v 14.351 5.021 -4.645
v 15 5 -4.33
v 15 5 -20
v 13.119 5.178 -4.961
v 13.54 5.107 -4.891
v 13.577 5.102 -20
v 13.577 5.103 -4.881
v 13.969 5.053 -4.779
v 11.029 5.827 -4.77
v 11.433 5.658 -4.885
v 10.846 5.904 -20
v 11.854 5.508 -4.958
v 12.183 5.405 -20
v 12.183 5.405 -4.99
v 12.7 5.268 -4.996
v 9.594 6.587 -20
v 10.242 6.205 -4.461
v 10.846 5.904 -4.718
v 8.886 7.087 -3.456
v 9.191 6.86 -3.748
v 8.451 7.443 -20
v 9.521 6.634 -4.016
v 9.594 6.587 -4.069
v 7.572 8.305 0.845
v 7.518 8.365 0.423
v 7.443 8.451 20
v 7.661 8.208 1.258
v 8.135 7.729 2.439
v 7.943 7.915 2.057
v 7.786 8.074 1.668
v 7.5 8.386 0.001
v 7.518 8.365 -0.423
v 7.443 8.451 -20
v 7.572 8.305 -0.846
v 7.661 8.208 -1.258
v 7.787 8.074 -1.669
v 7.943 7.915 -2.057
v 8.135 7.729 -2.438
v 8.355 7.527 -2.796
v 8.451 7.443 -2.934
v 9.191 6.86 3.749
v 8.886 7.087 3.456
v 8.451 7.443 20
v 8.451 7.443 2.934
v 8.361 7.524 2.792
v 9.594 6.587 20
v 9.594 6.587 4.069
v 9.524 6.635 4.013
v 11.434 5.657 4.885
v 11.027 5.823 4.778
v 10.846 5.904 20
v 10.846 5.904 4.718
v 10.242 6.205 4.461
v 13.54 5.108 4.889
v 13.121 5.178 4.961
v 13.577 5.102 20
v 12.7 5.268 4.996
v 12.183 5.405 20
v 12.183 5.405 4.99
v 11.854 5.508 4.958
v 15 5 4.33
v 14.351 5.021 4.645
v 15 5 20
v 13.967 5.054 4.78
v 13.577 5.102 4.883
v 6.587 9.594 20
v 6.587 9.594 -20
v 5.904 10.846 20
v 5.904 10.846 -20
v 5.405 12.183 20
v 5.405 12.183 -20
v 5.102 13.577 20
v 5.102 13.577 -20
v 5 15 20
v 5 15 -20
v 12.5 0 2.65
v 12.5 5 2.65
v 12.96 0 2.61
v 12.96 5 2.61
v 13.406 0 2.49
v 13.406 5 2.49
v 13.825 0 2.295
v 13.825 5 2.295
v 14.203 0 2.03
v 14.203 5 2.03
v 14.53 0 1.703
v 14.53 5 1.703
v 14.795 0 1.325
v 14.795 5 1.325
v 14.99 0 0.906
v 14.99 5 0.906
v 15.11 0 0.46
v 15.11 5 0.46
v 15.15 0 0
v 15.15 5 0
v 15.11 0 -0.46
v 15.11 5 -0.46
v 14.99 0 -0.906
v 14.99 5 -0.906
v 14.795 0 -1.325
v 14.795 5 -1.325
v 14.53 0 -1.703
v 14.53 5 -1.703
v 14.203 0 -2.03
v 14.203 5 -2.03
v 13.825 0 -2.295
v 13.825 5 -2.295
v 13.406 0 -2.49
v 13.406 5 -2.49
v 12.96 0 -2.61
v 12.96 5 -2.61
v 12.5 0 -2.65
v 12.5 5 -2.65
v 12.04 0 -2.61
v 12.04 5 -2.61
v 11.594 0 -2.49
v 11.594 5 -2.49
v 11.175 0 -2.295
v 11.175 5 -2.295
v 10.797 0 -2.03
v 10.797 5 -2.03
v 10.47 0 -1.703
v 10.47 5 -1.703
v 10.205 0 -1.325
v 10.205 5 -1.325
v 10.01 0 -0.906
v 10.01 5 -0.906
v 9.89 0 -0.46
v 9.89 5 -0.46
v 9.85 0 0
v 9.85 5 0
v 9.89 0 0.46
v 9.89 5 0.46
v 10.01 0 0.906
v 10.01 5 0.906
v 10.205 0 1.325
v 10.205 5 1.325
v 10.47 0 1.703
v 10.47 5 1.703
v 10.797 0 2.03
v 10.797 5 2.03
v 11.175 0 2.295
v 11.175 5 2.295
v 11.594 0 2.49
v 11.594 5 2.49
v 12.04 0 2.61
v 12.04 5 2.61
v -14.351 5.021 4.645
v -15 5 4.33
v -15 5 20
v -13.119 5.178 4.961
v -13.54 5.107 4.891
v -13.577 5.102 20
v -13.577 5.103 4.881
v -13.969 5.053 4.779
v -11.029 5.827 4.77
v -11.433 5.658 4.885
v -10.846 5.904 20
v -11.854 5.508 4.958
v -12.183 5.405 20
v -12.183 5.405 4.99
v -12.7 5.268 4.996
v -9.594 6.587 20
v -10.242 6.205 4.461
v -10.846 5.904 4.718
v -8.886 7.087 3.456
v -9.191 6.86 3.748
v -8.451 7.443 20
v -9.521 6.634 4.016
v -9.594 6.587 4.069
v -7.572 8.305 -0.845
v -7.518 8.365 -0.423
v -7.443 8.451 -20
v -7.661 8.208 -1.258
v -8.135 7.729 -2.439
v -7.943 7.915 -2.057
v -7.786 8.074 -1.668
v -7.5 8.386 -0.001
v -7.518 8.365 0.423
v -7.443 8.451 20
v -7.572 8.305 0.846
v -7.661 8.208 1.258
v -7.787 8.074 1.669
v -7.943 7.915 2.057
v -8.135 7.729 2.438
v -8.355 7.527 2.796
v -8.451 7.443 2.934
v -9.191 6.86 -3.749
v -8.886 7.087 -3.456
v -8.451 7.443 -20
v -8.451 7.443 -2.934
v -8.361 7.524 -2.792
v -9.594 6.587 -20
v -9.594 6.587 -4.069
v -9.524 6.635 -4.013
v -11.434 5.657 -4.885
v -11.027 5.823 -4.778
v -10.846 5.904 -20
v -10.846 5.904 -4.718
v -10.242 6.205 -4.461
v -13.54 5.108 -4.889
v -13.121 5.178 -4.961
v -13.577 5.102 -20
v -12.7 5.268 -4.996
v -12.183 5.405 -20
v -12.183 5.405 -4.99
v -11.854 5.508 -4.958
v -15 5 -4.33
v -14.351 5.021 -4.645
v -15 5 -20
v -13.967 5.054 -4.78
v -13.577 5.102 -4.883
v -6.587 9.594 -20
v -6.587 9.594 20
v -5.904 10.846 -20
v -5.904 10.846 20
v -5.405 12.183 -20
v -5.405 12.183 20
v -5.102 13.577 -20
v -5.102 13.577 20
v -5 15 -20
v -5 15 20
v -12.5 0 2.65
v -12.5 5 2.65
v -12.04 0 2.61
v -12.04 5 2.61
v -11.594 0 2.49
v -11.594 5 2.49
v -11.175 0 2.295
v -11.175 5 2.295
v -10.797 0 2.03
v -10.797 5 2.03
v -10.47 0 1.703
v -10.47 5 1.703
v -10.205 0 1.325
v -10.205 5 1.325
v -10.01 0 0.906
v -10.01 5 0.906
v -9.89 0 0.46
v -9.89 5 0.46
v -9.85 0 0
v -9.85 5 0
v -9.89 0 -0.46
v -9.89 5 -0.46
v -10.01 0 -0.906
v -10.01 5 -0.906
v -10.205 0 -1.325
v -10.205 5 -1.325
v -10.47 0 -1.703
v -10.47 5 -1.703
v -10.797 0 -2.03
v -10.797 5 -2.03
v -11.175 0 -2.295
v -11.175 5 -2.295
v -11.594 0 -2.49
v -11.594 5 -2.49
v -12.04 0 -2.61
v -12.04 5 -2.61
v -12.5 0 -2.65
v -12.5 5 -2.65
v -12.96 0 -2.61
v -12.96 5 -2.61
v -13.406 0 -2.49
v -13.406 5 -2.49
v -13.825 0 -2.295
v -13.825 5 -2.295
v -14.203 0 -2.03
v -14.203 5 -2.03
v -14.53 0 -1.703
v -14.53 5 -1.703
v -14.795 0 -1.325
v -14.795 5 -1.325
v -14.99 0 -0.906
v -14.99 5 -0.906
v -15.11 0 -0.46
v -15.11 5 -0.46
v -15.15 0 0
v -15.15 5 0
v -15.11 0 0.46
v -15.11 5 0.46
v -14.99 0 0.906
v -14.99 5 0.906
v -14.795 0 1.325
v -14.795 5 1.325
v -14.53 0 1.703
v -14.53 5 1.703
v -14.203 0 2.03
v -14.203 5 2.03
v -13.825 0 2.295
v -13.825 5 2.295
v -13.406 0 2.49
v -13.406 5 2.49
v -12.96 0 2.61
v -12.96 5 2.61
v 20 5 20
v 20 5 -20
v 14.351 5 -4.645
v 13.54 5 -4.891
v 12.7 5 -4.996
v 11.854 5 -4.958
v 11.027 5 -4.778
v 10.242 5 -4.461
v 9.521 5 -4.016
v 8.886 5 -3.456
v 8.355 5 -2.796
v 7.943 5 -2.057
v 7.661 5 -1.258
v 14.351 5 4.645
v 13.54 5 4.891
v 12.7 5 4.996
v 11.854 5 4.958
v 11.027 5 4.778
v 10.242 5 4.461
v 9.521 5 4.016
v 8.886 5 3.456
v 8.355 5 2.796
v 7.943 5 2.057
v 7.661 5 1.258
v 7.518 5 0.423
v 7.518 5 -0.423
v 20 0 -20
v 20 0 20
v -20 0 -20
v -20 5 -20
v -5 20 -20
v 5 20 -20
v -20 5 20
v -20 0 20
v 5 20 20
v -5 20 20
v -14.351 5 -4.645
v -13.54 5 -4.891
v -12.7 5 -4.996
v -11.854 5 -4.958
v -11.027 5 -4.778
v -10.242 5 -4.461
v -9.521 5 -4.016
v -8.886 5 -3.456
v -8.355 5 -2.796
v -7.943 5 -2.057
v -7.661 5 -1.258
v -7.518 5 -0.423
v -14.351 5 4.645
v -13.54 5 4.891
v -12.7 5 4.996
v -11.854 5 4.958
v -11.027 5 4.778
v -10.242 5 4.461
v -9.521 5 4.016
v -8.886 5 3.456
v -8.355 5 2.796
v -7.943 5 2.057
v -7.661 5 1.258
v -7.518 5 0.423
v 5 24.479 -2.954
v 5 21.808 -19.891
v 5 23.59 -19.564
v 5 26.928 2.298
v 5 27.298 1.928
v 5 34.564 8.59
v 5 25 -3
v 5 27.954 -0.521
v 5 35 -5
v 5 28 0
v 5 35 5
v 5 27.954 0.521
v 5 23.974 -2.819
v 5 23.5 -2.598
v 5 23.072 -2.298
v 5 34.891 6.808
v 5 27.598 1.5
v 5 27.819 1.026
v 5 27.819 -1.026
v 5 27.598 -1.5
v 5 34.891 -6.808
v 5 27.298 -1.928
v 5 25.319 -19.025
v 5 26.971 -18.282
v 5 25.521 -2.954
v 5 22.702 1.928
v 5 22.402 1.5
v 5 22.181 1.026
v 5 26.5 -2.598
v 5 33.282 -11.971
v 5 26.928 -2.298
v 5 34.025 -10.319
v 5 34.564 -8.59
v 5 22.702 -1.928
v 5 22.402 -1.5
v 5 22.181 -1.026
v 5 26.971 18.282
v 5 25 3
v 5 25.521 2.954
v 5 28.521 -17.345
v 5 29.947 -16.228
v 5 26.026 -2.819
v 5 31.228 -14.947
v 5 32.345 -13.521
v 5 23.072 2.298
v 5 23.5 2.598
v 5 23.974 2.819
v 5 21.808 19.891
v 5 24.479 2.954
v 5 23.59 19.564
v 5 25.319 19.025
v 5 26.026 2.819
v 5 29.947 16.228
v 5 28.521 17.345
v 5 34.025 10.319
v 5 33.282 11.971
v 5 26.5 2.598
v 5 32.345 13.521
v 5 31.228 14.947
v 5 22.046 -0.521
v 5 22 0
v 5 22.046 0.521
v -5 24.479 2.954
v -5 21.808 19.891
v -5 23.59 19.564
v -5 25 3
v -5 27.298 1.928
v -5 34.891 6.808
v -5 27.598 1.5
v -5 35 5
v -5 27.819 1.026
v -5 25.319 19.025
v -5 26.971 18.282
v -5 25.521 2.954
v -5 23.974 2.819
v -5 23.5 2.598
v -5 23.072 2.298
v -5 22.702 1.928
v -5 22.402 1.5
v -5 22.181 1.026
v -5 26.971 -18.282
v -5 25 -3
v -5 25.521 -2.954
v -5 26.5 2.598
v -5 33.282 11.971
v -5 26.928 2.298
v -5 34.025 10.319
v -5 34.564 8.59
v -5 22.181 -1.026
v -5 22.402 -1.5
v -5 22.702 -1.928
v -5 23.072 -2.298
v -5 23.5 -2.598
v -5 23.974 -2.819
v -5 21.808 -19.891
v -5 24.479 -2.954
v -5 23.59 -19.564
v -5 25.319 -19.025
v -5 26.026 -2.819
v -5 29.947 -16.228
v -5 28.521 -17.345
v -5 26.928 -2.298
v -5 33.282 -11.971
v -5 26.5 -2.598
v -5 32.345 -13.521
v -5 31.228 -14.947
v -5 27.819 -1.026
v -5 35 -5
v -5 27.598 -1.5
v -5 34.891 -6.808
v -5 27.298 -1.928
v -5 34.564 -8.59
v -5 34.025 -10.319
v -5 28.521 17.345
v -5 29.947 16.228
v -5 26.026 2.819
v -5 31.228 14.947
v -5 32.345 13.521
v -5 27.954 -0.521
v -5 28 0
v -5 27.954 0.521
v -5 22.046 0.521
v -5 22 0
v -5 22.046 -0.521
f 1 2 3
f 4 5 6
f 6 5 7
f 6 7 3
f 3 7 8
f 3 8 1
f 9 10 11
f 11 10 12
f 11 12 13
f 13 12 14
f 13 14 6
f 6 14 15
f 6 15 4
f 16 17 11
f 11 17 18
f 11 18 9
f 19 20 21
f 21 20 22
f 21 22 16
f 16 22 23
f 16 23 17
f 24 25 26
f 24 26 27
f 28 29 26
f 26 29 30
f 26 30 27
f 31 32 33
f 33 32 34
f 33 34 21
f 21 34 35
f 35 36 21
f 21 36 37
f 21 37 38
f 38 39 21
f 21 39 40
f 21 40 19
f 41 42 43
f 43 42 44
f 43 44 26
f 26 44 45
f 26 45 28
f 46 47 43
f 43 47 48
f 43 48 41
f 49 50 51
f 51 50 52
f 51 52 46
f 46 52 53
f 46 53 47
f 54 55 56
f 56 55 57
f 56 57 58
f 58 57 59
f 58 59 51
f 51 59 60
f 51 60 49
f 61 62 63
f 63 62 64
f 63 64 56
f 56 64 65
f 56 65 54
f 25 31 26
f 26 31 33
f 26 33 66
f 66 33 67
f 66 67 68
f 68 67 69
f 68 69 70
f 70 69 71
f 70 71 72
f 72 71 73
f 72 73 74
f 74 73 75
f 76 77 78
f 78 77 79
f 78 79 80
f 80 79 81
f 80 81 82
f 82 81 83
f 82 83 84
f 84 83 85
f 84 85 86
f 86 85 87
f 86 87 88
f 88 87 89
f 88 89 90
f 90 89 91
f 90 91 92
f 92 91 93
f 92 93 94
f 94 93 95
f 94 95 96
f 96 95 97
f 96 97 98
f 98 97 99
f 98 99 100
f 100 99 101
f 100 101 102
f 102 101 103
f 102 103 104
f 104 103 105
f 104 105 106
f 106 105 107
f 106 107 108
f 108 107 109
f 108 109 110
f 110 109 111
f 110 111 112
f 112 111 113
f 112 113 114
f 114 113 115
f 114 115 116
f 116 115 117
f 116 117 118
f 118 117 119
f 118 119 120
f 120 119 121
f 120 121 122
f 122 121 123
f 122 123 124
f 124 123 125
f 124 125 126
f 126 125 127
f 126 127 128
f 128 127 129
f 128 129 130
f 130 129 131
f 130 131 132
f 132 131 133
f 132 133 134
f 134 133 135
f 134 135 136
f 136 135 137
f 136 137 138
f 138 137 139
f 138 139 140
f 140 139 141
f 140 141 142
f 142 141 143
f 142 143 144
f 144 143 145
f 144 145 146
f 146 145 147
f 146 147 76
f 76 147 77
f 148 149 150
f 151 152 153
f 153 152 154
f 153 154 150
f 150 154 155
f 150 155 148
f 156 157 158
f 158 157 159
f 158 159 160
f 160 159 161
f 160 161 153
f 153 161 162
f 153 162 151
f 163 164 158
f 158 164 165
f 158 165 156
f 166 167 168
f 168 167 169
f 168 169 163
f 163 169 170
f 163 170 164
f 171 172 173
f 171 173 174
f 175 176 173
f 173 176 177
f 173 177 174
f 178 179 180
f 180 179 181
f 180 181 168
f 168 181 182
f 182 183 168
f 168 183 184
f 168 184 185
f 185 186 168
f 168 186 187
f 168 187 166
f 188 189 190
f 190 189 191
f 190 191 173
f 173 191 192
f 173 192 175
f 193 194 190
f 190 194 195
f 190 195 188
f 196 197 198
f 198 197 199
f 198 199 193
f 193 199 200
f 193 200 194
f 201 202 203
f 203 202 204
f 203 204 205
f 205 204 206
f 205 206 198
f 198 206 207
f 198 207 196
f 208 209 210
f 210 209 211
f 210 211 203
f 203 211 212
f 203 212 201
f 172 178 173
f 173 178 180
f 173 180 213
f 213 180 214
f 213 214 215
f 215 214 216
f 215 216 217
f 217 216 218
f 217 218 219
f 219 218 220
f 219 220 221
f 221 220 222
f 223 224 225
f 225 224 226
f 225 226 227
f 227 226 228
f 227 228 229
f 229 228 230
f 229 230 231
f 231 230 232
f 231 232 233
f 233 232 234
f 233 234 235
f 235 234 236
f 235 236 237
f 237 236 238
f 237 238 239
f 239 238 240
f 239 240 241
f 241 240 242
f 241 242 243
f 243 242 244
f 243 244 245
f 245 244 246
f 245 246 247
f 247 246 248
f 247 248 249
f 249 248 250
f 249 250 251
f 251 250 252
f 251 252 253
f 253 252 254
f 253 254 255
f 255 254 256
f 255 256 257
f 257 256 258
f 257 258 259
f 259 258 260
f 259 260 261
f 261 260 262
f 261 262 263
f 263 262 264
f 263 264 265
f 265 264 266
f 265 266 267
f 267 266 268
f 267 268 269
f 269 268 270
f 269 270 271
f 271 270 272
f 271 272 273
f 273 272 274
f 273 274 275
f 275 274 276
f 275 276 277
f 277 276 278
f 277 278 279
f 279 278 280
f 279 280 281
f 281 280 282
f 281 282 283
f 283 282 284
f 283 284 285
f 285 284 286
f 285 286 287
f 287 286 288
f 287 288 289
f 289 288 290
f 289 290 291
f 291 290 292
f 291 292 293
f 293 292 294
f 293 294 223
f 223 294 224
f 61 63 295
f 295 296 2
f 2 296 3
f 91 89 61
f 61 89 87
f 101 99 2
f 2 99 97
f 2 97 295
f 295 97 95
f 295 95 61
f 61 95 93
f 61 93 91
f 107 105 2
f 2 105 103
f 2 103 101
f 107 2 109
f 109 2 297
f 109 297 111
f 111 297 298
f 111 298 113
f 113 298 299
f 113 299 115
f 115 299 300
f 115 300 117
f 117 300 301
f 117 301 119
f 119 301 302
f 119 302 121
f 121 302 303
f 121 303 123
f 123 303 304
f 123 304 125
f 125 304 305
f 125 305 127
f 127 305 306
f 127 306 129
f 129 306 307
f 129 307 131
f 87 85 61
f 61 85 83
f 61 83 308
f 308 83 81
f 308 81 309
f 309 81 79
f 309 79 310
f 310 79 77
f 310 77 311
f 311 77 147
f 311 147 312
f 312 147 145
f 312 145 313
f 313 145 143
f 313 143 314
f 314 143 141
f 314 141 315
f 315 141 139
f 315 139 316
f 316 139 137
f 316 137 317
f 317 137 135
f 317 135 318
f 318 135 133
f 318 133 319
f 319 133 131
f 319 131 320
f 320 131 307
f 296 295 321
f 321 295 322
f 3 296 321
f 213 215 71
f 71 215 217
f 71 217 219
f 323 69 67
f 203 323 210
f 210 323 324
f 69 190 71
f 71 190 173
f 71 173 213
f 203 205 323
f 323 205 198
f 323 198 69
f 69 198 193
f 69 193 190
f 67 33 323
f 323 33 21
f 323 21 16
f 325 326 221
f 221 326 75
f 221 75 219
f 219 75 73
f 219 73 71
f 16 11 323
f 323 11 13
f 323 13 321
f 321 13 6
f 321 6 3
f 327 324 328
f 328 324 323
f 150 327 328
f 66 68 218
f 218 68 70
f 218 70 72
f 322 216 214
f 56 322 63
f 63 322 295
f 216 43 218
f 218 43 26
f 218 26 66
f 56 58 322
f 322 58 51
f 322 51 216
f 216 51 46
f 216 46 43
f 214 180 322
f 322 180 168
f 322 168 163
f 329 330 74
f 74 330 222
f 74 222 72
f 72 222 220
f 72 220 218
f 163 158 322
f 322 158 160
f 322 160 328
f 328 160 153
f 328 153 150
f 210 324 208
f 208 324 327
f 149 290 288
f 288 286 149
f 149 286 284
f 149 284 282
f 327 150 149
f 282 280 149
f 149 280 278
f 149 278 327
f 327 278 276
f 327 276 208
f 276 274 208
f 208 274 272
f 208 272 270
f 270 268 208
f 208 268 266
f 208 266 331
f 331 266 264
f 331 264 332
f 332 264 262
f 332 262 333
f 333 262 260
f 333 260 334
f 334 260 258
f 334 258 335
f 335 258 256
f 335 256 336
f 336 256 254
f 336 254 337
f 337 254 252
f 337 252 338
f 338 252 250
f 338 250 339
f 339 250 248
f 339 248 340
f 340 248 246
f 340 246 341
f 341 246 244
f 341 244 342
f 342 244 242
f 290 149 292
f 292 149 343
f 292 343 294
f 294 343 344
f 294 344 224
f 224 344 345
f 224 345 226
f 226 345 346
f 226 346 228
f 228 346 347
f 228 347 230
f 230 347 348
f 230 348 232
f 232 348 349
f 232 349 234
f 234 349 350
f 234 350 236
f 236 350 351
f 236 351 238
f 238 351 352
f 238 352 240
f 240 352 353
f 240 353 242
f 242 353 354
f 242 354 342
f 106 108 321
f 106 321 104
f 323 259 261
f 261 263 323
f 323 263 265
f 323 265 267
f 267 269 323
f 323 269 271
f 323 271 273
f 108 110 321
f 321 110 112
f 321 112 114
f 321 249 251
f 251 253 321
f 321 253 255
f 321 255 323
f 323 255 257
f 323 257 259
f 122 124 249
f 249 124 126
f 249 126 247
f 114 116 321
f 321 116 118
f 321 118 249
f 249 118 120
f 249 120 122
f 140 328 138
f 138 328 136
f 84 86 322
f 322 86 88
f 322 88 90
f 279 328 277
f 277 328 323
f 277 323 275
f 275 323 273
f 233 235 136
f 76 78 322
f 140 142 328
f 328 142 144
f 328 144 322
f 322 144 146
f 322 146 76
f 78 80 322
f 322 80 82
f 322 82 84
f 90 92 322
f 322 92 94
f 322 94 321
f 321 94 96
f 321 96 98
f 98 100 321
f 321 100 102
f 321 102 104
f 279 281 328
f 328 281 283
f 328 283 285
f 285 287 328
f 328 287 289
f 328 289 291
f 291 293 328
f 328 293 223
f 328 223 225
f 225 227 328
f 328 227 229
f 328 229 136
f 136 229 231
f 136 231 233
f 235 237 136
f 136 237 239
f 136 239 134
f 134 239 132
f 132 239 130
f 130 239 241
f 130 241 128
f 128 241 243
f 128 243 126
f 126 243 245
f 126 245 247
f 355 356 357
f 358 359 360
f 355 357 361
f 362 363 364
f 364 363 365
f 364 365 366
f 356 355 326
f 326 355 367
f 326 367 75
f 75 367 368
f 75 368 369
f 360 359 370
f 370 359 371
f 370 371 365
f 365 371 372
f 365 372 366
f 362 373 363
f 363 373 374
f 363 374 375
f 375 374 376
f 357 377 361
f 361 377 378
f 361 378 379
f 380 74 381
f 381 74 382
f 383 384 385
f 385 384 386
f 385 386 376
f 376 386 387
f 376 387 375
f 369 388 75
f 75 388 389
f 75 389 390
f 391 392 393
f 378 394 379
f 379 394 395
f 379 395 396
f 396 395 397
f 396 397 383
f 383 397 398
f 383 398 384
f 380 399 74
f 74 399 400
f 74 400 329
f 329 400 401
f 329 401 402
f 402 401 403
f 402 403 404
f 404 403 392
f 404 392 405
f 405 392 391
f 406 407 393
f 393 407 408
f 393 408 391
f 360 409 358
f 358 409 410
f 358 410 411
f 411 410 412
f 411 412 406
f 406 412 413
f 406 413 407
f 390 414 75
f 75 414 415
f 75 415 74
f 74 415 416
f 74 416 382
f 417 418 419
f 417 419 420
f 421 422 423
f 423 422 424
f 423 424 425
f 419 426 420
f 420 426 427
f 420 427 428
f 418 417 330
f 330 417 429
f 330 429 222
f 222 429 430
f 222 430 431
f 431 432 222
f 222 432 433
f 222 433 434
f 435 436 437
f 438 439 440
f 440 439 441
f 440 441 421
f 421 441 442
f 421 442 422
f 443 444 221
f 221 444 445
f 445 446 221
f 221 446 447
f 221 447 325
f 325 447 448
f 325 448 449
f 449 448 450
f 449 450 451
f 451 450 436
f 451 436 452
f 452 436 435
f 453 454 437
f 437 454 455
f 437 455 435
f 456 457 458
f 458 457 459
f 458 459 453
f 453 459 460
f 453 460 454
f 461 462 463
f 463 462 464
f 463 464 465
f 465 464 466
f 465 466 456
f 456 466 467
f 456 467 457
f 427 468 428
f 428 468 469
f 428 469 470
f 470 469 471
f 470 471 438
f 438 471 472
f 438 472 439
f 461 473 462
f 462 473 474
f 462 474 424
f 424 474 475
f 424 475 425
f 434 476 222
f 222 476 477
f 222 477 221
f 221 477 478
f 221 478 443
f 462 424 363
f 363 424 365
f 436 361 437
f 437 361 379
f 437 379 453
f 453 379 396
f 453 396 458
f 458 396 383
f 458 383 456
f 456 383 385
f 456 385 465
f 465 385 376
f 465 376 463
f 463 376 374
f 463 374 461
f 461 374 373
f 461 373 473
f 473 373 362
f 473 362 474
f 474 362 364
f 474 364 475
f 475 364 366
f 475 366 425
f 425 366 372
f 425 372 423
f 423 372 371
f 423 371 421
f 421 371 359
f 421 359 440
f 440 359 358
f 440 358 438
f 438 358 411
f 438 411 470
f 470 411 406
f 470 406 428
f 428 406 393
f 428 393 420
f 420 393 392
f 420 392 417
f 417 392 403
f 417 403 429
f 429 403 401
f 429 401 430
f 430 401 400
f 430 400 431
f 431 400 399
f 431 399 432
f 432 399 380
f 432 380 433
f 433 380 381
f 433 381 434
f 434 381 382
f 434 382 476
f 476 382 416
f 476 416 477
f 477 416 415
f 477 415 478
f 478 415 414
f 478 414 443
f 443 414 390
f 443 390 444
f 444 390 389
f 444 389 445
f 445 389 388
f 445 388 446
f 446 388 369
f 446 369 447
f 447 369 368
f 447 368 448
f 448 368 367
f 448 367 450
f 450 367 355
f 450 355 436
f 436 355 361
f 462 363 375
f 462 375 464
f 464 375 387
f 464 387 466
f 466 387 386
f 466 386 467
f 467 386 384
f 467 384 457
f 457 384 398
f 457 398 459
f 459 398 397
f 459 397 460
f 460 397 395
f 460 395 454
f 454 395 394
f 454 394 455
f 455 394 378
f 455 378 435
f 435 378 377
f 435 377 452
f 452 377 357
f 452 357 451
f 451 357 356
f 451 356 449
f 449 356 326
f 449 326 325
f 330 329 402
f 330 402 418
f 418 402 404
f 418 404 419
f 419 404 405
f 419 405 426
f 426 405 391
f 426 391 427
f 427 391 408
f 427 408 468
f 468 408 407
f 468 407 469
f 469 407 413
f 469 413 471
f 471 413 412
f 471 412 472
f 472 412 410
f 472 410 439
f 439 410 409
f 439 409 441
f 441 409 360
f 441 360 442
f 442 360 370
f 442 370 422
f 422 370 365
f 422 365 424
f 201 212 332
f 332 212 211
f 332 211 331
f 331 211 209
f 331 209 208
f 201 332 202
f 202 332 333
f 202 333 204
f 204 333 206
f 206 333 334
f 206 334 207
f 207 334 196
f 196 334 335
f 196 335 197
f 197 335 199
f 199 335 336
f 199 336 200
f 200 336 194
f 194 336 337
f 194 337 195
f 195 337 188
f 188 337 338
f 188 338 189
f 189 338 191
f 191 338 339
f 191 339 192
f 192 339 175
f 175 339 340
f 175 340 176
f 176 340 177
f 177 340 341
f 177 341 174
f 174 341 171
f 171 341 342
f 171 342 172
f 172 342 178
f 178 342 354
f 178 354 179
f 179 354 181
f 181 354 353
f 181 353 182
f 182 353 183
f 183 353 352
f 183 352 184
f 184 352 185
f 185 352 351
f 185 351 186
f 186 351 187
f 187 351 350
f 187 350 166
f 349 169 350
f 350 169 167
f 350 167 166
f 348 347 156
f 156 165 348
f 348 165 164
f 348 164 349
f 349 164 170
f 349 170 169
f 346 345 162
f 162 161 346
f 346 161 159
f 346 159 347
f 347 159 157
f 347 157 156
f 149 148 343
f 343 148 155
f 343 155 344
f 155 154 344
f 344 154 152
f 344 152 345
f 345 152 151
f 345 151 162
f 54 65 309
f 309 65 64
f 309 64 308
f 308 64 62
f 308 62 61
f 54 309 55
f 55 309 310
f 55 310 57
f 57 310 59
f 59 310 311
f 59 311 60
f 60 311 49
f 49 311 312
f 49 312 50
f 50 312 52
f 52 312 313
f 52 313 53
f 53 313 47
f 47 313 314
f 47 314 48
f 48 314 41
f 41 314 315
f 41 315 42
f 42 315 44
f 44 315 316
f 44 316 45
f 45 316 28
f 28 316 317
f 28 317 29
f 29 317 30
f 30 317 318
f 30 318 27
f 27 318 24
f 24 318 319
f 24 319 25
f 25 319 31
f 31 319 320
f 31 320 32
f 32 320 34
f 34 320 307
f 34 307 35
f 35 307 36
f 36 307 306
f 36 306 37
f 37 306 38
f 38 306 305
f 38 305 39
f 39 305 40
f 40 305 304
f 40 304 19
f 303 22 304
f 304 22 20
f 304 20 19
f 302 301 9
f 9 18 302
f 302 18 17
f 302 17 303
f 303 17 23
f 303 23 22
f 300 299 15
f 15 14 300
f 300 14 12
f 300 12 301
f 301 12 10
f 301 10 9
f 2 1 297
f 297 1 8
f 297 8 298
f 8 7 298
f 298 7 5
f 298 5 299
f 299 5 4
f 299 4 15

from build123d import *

# Parameters (mm, degrees)
SKETCH1_W                  = 40
SKETCH1_H                  = 40
BOSS_EXTRUDE1_DEPTH        = 5
SKETCH4_W                  = 10
SKETCH4_H                  = 40
BOSS_EXTRUDE3_DEPTH        = 30
SKETCH5_R                  = 3
CUT_EXTRUDE4_DEPTH         = 26
FILLET1_R                  = 15
FILETE1_R                  = 10
ESBO_O1_R                  = 2.65
CORTE_EXTRUS_O1_DEPTH      = 31
CORTE_EXTRUS_O1_DEPTH_BACK = 6
ESBO_O2_R                  = 5
CORTE_EXTRUS_O2_DEPTH      = 31


with BuildPart() as part:
    # Sketch1 → Boss-Extrude1 (new body)
    with BuildSketch(Plane(origin=(0, 0, 0), x_dir=(1, 0, 0), z_dir=(0, 1, 0))):
        Rectangle(SKETCH1_W, SKETCH1_H)
    extrude(amount=BOSS_EXTRUDE1_DEPTH)

    # Sketch4 → Boss-Extrude3 (add)
    with BuildSketch(Plane(origin=(0, 5, 0), x_dir=(1, 0, 0), z_dir=(0, 1, 0))):
        Rectangle(SKETCH4_W, SKETCH4_H)
    extrude(amount=BOSS_EXTRUDE3_DEPTH)

    # Sketch5 → Cut-Extrude4 (cut, through all)
    with BuildSketch(Plane(origin=(5, 0, 0), x_dir=(0, 0, -1), z_dir=(1, 0, 0))):
        with Locations((0, 25)):
            Circle(SKETCH5_R)
    extrude(amount=-CUT_EXTRUDE4_DEPTH, mode=Mode.SUBTRACT)

    # Fillet1
    fillet1_edges = [part.edges().sort_by_distance(p)[0] for p in [
        (0, 35, -20),
        (0, 35, 20),
    ]]
    fillet(fillet1_edges, radius=FILLET1_R)

    # Filete1
    filete1_edges = [part.edges().sort_by_distance(p)[0] for p in [
        (5, 5, 0),
        (-5, 5, 0),
    ]]
    fillet(filete1_edges, radius=FILETE1_R)

    # Esboço1 → Corte-extrusão1 (cut, two sides)
    with BuildSketch(Plane(origin=(0, 5, 0), x_dir=(1, 0, 0), z_dir=(0, 1, 0))) as corte_extrus_o1_sk:
        with Locations((-12.5, 0)):
            Circle(ESBO_O1_R)
        with Locations((12.5, 0)):
            Circle(ESBO_O1_R)
    extrude(amount=CORTE_EXTRUS_O1_DEPTH, mode=Mode.SUBTRACT)
    extrude(corte_extrus_o1_sk.sketch, amount=-CORTE_EXTRUS_O1_DEPTH_BACK, mode=Mode.SUBTRACT)

    # Esboço2 → Corte-extrusão2 (cut, through all)
    with BuildSketch(Plane(origin=(0, 5, 0), x_dir=(1, 0, 0), z_dir=(0, 1, 0))):
        with Locations((-12.5, 0)):
            Circle(ESBO_O2_R)
        with Locations((12.5, 0)):
            Circle(ESBO_O2_R)
    extrude(amount=CORTE_EXTRUS_O2_DEPTH, mode=Mode.SUBTRACT)


solid = part.part
